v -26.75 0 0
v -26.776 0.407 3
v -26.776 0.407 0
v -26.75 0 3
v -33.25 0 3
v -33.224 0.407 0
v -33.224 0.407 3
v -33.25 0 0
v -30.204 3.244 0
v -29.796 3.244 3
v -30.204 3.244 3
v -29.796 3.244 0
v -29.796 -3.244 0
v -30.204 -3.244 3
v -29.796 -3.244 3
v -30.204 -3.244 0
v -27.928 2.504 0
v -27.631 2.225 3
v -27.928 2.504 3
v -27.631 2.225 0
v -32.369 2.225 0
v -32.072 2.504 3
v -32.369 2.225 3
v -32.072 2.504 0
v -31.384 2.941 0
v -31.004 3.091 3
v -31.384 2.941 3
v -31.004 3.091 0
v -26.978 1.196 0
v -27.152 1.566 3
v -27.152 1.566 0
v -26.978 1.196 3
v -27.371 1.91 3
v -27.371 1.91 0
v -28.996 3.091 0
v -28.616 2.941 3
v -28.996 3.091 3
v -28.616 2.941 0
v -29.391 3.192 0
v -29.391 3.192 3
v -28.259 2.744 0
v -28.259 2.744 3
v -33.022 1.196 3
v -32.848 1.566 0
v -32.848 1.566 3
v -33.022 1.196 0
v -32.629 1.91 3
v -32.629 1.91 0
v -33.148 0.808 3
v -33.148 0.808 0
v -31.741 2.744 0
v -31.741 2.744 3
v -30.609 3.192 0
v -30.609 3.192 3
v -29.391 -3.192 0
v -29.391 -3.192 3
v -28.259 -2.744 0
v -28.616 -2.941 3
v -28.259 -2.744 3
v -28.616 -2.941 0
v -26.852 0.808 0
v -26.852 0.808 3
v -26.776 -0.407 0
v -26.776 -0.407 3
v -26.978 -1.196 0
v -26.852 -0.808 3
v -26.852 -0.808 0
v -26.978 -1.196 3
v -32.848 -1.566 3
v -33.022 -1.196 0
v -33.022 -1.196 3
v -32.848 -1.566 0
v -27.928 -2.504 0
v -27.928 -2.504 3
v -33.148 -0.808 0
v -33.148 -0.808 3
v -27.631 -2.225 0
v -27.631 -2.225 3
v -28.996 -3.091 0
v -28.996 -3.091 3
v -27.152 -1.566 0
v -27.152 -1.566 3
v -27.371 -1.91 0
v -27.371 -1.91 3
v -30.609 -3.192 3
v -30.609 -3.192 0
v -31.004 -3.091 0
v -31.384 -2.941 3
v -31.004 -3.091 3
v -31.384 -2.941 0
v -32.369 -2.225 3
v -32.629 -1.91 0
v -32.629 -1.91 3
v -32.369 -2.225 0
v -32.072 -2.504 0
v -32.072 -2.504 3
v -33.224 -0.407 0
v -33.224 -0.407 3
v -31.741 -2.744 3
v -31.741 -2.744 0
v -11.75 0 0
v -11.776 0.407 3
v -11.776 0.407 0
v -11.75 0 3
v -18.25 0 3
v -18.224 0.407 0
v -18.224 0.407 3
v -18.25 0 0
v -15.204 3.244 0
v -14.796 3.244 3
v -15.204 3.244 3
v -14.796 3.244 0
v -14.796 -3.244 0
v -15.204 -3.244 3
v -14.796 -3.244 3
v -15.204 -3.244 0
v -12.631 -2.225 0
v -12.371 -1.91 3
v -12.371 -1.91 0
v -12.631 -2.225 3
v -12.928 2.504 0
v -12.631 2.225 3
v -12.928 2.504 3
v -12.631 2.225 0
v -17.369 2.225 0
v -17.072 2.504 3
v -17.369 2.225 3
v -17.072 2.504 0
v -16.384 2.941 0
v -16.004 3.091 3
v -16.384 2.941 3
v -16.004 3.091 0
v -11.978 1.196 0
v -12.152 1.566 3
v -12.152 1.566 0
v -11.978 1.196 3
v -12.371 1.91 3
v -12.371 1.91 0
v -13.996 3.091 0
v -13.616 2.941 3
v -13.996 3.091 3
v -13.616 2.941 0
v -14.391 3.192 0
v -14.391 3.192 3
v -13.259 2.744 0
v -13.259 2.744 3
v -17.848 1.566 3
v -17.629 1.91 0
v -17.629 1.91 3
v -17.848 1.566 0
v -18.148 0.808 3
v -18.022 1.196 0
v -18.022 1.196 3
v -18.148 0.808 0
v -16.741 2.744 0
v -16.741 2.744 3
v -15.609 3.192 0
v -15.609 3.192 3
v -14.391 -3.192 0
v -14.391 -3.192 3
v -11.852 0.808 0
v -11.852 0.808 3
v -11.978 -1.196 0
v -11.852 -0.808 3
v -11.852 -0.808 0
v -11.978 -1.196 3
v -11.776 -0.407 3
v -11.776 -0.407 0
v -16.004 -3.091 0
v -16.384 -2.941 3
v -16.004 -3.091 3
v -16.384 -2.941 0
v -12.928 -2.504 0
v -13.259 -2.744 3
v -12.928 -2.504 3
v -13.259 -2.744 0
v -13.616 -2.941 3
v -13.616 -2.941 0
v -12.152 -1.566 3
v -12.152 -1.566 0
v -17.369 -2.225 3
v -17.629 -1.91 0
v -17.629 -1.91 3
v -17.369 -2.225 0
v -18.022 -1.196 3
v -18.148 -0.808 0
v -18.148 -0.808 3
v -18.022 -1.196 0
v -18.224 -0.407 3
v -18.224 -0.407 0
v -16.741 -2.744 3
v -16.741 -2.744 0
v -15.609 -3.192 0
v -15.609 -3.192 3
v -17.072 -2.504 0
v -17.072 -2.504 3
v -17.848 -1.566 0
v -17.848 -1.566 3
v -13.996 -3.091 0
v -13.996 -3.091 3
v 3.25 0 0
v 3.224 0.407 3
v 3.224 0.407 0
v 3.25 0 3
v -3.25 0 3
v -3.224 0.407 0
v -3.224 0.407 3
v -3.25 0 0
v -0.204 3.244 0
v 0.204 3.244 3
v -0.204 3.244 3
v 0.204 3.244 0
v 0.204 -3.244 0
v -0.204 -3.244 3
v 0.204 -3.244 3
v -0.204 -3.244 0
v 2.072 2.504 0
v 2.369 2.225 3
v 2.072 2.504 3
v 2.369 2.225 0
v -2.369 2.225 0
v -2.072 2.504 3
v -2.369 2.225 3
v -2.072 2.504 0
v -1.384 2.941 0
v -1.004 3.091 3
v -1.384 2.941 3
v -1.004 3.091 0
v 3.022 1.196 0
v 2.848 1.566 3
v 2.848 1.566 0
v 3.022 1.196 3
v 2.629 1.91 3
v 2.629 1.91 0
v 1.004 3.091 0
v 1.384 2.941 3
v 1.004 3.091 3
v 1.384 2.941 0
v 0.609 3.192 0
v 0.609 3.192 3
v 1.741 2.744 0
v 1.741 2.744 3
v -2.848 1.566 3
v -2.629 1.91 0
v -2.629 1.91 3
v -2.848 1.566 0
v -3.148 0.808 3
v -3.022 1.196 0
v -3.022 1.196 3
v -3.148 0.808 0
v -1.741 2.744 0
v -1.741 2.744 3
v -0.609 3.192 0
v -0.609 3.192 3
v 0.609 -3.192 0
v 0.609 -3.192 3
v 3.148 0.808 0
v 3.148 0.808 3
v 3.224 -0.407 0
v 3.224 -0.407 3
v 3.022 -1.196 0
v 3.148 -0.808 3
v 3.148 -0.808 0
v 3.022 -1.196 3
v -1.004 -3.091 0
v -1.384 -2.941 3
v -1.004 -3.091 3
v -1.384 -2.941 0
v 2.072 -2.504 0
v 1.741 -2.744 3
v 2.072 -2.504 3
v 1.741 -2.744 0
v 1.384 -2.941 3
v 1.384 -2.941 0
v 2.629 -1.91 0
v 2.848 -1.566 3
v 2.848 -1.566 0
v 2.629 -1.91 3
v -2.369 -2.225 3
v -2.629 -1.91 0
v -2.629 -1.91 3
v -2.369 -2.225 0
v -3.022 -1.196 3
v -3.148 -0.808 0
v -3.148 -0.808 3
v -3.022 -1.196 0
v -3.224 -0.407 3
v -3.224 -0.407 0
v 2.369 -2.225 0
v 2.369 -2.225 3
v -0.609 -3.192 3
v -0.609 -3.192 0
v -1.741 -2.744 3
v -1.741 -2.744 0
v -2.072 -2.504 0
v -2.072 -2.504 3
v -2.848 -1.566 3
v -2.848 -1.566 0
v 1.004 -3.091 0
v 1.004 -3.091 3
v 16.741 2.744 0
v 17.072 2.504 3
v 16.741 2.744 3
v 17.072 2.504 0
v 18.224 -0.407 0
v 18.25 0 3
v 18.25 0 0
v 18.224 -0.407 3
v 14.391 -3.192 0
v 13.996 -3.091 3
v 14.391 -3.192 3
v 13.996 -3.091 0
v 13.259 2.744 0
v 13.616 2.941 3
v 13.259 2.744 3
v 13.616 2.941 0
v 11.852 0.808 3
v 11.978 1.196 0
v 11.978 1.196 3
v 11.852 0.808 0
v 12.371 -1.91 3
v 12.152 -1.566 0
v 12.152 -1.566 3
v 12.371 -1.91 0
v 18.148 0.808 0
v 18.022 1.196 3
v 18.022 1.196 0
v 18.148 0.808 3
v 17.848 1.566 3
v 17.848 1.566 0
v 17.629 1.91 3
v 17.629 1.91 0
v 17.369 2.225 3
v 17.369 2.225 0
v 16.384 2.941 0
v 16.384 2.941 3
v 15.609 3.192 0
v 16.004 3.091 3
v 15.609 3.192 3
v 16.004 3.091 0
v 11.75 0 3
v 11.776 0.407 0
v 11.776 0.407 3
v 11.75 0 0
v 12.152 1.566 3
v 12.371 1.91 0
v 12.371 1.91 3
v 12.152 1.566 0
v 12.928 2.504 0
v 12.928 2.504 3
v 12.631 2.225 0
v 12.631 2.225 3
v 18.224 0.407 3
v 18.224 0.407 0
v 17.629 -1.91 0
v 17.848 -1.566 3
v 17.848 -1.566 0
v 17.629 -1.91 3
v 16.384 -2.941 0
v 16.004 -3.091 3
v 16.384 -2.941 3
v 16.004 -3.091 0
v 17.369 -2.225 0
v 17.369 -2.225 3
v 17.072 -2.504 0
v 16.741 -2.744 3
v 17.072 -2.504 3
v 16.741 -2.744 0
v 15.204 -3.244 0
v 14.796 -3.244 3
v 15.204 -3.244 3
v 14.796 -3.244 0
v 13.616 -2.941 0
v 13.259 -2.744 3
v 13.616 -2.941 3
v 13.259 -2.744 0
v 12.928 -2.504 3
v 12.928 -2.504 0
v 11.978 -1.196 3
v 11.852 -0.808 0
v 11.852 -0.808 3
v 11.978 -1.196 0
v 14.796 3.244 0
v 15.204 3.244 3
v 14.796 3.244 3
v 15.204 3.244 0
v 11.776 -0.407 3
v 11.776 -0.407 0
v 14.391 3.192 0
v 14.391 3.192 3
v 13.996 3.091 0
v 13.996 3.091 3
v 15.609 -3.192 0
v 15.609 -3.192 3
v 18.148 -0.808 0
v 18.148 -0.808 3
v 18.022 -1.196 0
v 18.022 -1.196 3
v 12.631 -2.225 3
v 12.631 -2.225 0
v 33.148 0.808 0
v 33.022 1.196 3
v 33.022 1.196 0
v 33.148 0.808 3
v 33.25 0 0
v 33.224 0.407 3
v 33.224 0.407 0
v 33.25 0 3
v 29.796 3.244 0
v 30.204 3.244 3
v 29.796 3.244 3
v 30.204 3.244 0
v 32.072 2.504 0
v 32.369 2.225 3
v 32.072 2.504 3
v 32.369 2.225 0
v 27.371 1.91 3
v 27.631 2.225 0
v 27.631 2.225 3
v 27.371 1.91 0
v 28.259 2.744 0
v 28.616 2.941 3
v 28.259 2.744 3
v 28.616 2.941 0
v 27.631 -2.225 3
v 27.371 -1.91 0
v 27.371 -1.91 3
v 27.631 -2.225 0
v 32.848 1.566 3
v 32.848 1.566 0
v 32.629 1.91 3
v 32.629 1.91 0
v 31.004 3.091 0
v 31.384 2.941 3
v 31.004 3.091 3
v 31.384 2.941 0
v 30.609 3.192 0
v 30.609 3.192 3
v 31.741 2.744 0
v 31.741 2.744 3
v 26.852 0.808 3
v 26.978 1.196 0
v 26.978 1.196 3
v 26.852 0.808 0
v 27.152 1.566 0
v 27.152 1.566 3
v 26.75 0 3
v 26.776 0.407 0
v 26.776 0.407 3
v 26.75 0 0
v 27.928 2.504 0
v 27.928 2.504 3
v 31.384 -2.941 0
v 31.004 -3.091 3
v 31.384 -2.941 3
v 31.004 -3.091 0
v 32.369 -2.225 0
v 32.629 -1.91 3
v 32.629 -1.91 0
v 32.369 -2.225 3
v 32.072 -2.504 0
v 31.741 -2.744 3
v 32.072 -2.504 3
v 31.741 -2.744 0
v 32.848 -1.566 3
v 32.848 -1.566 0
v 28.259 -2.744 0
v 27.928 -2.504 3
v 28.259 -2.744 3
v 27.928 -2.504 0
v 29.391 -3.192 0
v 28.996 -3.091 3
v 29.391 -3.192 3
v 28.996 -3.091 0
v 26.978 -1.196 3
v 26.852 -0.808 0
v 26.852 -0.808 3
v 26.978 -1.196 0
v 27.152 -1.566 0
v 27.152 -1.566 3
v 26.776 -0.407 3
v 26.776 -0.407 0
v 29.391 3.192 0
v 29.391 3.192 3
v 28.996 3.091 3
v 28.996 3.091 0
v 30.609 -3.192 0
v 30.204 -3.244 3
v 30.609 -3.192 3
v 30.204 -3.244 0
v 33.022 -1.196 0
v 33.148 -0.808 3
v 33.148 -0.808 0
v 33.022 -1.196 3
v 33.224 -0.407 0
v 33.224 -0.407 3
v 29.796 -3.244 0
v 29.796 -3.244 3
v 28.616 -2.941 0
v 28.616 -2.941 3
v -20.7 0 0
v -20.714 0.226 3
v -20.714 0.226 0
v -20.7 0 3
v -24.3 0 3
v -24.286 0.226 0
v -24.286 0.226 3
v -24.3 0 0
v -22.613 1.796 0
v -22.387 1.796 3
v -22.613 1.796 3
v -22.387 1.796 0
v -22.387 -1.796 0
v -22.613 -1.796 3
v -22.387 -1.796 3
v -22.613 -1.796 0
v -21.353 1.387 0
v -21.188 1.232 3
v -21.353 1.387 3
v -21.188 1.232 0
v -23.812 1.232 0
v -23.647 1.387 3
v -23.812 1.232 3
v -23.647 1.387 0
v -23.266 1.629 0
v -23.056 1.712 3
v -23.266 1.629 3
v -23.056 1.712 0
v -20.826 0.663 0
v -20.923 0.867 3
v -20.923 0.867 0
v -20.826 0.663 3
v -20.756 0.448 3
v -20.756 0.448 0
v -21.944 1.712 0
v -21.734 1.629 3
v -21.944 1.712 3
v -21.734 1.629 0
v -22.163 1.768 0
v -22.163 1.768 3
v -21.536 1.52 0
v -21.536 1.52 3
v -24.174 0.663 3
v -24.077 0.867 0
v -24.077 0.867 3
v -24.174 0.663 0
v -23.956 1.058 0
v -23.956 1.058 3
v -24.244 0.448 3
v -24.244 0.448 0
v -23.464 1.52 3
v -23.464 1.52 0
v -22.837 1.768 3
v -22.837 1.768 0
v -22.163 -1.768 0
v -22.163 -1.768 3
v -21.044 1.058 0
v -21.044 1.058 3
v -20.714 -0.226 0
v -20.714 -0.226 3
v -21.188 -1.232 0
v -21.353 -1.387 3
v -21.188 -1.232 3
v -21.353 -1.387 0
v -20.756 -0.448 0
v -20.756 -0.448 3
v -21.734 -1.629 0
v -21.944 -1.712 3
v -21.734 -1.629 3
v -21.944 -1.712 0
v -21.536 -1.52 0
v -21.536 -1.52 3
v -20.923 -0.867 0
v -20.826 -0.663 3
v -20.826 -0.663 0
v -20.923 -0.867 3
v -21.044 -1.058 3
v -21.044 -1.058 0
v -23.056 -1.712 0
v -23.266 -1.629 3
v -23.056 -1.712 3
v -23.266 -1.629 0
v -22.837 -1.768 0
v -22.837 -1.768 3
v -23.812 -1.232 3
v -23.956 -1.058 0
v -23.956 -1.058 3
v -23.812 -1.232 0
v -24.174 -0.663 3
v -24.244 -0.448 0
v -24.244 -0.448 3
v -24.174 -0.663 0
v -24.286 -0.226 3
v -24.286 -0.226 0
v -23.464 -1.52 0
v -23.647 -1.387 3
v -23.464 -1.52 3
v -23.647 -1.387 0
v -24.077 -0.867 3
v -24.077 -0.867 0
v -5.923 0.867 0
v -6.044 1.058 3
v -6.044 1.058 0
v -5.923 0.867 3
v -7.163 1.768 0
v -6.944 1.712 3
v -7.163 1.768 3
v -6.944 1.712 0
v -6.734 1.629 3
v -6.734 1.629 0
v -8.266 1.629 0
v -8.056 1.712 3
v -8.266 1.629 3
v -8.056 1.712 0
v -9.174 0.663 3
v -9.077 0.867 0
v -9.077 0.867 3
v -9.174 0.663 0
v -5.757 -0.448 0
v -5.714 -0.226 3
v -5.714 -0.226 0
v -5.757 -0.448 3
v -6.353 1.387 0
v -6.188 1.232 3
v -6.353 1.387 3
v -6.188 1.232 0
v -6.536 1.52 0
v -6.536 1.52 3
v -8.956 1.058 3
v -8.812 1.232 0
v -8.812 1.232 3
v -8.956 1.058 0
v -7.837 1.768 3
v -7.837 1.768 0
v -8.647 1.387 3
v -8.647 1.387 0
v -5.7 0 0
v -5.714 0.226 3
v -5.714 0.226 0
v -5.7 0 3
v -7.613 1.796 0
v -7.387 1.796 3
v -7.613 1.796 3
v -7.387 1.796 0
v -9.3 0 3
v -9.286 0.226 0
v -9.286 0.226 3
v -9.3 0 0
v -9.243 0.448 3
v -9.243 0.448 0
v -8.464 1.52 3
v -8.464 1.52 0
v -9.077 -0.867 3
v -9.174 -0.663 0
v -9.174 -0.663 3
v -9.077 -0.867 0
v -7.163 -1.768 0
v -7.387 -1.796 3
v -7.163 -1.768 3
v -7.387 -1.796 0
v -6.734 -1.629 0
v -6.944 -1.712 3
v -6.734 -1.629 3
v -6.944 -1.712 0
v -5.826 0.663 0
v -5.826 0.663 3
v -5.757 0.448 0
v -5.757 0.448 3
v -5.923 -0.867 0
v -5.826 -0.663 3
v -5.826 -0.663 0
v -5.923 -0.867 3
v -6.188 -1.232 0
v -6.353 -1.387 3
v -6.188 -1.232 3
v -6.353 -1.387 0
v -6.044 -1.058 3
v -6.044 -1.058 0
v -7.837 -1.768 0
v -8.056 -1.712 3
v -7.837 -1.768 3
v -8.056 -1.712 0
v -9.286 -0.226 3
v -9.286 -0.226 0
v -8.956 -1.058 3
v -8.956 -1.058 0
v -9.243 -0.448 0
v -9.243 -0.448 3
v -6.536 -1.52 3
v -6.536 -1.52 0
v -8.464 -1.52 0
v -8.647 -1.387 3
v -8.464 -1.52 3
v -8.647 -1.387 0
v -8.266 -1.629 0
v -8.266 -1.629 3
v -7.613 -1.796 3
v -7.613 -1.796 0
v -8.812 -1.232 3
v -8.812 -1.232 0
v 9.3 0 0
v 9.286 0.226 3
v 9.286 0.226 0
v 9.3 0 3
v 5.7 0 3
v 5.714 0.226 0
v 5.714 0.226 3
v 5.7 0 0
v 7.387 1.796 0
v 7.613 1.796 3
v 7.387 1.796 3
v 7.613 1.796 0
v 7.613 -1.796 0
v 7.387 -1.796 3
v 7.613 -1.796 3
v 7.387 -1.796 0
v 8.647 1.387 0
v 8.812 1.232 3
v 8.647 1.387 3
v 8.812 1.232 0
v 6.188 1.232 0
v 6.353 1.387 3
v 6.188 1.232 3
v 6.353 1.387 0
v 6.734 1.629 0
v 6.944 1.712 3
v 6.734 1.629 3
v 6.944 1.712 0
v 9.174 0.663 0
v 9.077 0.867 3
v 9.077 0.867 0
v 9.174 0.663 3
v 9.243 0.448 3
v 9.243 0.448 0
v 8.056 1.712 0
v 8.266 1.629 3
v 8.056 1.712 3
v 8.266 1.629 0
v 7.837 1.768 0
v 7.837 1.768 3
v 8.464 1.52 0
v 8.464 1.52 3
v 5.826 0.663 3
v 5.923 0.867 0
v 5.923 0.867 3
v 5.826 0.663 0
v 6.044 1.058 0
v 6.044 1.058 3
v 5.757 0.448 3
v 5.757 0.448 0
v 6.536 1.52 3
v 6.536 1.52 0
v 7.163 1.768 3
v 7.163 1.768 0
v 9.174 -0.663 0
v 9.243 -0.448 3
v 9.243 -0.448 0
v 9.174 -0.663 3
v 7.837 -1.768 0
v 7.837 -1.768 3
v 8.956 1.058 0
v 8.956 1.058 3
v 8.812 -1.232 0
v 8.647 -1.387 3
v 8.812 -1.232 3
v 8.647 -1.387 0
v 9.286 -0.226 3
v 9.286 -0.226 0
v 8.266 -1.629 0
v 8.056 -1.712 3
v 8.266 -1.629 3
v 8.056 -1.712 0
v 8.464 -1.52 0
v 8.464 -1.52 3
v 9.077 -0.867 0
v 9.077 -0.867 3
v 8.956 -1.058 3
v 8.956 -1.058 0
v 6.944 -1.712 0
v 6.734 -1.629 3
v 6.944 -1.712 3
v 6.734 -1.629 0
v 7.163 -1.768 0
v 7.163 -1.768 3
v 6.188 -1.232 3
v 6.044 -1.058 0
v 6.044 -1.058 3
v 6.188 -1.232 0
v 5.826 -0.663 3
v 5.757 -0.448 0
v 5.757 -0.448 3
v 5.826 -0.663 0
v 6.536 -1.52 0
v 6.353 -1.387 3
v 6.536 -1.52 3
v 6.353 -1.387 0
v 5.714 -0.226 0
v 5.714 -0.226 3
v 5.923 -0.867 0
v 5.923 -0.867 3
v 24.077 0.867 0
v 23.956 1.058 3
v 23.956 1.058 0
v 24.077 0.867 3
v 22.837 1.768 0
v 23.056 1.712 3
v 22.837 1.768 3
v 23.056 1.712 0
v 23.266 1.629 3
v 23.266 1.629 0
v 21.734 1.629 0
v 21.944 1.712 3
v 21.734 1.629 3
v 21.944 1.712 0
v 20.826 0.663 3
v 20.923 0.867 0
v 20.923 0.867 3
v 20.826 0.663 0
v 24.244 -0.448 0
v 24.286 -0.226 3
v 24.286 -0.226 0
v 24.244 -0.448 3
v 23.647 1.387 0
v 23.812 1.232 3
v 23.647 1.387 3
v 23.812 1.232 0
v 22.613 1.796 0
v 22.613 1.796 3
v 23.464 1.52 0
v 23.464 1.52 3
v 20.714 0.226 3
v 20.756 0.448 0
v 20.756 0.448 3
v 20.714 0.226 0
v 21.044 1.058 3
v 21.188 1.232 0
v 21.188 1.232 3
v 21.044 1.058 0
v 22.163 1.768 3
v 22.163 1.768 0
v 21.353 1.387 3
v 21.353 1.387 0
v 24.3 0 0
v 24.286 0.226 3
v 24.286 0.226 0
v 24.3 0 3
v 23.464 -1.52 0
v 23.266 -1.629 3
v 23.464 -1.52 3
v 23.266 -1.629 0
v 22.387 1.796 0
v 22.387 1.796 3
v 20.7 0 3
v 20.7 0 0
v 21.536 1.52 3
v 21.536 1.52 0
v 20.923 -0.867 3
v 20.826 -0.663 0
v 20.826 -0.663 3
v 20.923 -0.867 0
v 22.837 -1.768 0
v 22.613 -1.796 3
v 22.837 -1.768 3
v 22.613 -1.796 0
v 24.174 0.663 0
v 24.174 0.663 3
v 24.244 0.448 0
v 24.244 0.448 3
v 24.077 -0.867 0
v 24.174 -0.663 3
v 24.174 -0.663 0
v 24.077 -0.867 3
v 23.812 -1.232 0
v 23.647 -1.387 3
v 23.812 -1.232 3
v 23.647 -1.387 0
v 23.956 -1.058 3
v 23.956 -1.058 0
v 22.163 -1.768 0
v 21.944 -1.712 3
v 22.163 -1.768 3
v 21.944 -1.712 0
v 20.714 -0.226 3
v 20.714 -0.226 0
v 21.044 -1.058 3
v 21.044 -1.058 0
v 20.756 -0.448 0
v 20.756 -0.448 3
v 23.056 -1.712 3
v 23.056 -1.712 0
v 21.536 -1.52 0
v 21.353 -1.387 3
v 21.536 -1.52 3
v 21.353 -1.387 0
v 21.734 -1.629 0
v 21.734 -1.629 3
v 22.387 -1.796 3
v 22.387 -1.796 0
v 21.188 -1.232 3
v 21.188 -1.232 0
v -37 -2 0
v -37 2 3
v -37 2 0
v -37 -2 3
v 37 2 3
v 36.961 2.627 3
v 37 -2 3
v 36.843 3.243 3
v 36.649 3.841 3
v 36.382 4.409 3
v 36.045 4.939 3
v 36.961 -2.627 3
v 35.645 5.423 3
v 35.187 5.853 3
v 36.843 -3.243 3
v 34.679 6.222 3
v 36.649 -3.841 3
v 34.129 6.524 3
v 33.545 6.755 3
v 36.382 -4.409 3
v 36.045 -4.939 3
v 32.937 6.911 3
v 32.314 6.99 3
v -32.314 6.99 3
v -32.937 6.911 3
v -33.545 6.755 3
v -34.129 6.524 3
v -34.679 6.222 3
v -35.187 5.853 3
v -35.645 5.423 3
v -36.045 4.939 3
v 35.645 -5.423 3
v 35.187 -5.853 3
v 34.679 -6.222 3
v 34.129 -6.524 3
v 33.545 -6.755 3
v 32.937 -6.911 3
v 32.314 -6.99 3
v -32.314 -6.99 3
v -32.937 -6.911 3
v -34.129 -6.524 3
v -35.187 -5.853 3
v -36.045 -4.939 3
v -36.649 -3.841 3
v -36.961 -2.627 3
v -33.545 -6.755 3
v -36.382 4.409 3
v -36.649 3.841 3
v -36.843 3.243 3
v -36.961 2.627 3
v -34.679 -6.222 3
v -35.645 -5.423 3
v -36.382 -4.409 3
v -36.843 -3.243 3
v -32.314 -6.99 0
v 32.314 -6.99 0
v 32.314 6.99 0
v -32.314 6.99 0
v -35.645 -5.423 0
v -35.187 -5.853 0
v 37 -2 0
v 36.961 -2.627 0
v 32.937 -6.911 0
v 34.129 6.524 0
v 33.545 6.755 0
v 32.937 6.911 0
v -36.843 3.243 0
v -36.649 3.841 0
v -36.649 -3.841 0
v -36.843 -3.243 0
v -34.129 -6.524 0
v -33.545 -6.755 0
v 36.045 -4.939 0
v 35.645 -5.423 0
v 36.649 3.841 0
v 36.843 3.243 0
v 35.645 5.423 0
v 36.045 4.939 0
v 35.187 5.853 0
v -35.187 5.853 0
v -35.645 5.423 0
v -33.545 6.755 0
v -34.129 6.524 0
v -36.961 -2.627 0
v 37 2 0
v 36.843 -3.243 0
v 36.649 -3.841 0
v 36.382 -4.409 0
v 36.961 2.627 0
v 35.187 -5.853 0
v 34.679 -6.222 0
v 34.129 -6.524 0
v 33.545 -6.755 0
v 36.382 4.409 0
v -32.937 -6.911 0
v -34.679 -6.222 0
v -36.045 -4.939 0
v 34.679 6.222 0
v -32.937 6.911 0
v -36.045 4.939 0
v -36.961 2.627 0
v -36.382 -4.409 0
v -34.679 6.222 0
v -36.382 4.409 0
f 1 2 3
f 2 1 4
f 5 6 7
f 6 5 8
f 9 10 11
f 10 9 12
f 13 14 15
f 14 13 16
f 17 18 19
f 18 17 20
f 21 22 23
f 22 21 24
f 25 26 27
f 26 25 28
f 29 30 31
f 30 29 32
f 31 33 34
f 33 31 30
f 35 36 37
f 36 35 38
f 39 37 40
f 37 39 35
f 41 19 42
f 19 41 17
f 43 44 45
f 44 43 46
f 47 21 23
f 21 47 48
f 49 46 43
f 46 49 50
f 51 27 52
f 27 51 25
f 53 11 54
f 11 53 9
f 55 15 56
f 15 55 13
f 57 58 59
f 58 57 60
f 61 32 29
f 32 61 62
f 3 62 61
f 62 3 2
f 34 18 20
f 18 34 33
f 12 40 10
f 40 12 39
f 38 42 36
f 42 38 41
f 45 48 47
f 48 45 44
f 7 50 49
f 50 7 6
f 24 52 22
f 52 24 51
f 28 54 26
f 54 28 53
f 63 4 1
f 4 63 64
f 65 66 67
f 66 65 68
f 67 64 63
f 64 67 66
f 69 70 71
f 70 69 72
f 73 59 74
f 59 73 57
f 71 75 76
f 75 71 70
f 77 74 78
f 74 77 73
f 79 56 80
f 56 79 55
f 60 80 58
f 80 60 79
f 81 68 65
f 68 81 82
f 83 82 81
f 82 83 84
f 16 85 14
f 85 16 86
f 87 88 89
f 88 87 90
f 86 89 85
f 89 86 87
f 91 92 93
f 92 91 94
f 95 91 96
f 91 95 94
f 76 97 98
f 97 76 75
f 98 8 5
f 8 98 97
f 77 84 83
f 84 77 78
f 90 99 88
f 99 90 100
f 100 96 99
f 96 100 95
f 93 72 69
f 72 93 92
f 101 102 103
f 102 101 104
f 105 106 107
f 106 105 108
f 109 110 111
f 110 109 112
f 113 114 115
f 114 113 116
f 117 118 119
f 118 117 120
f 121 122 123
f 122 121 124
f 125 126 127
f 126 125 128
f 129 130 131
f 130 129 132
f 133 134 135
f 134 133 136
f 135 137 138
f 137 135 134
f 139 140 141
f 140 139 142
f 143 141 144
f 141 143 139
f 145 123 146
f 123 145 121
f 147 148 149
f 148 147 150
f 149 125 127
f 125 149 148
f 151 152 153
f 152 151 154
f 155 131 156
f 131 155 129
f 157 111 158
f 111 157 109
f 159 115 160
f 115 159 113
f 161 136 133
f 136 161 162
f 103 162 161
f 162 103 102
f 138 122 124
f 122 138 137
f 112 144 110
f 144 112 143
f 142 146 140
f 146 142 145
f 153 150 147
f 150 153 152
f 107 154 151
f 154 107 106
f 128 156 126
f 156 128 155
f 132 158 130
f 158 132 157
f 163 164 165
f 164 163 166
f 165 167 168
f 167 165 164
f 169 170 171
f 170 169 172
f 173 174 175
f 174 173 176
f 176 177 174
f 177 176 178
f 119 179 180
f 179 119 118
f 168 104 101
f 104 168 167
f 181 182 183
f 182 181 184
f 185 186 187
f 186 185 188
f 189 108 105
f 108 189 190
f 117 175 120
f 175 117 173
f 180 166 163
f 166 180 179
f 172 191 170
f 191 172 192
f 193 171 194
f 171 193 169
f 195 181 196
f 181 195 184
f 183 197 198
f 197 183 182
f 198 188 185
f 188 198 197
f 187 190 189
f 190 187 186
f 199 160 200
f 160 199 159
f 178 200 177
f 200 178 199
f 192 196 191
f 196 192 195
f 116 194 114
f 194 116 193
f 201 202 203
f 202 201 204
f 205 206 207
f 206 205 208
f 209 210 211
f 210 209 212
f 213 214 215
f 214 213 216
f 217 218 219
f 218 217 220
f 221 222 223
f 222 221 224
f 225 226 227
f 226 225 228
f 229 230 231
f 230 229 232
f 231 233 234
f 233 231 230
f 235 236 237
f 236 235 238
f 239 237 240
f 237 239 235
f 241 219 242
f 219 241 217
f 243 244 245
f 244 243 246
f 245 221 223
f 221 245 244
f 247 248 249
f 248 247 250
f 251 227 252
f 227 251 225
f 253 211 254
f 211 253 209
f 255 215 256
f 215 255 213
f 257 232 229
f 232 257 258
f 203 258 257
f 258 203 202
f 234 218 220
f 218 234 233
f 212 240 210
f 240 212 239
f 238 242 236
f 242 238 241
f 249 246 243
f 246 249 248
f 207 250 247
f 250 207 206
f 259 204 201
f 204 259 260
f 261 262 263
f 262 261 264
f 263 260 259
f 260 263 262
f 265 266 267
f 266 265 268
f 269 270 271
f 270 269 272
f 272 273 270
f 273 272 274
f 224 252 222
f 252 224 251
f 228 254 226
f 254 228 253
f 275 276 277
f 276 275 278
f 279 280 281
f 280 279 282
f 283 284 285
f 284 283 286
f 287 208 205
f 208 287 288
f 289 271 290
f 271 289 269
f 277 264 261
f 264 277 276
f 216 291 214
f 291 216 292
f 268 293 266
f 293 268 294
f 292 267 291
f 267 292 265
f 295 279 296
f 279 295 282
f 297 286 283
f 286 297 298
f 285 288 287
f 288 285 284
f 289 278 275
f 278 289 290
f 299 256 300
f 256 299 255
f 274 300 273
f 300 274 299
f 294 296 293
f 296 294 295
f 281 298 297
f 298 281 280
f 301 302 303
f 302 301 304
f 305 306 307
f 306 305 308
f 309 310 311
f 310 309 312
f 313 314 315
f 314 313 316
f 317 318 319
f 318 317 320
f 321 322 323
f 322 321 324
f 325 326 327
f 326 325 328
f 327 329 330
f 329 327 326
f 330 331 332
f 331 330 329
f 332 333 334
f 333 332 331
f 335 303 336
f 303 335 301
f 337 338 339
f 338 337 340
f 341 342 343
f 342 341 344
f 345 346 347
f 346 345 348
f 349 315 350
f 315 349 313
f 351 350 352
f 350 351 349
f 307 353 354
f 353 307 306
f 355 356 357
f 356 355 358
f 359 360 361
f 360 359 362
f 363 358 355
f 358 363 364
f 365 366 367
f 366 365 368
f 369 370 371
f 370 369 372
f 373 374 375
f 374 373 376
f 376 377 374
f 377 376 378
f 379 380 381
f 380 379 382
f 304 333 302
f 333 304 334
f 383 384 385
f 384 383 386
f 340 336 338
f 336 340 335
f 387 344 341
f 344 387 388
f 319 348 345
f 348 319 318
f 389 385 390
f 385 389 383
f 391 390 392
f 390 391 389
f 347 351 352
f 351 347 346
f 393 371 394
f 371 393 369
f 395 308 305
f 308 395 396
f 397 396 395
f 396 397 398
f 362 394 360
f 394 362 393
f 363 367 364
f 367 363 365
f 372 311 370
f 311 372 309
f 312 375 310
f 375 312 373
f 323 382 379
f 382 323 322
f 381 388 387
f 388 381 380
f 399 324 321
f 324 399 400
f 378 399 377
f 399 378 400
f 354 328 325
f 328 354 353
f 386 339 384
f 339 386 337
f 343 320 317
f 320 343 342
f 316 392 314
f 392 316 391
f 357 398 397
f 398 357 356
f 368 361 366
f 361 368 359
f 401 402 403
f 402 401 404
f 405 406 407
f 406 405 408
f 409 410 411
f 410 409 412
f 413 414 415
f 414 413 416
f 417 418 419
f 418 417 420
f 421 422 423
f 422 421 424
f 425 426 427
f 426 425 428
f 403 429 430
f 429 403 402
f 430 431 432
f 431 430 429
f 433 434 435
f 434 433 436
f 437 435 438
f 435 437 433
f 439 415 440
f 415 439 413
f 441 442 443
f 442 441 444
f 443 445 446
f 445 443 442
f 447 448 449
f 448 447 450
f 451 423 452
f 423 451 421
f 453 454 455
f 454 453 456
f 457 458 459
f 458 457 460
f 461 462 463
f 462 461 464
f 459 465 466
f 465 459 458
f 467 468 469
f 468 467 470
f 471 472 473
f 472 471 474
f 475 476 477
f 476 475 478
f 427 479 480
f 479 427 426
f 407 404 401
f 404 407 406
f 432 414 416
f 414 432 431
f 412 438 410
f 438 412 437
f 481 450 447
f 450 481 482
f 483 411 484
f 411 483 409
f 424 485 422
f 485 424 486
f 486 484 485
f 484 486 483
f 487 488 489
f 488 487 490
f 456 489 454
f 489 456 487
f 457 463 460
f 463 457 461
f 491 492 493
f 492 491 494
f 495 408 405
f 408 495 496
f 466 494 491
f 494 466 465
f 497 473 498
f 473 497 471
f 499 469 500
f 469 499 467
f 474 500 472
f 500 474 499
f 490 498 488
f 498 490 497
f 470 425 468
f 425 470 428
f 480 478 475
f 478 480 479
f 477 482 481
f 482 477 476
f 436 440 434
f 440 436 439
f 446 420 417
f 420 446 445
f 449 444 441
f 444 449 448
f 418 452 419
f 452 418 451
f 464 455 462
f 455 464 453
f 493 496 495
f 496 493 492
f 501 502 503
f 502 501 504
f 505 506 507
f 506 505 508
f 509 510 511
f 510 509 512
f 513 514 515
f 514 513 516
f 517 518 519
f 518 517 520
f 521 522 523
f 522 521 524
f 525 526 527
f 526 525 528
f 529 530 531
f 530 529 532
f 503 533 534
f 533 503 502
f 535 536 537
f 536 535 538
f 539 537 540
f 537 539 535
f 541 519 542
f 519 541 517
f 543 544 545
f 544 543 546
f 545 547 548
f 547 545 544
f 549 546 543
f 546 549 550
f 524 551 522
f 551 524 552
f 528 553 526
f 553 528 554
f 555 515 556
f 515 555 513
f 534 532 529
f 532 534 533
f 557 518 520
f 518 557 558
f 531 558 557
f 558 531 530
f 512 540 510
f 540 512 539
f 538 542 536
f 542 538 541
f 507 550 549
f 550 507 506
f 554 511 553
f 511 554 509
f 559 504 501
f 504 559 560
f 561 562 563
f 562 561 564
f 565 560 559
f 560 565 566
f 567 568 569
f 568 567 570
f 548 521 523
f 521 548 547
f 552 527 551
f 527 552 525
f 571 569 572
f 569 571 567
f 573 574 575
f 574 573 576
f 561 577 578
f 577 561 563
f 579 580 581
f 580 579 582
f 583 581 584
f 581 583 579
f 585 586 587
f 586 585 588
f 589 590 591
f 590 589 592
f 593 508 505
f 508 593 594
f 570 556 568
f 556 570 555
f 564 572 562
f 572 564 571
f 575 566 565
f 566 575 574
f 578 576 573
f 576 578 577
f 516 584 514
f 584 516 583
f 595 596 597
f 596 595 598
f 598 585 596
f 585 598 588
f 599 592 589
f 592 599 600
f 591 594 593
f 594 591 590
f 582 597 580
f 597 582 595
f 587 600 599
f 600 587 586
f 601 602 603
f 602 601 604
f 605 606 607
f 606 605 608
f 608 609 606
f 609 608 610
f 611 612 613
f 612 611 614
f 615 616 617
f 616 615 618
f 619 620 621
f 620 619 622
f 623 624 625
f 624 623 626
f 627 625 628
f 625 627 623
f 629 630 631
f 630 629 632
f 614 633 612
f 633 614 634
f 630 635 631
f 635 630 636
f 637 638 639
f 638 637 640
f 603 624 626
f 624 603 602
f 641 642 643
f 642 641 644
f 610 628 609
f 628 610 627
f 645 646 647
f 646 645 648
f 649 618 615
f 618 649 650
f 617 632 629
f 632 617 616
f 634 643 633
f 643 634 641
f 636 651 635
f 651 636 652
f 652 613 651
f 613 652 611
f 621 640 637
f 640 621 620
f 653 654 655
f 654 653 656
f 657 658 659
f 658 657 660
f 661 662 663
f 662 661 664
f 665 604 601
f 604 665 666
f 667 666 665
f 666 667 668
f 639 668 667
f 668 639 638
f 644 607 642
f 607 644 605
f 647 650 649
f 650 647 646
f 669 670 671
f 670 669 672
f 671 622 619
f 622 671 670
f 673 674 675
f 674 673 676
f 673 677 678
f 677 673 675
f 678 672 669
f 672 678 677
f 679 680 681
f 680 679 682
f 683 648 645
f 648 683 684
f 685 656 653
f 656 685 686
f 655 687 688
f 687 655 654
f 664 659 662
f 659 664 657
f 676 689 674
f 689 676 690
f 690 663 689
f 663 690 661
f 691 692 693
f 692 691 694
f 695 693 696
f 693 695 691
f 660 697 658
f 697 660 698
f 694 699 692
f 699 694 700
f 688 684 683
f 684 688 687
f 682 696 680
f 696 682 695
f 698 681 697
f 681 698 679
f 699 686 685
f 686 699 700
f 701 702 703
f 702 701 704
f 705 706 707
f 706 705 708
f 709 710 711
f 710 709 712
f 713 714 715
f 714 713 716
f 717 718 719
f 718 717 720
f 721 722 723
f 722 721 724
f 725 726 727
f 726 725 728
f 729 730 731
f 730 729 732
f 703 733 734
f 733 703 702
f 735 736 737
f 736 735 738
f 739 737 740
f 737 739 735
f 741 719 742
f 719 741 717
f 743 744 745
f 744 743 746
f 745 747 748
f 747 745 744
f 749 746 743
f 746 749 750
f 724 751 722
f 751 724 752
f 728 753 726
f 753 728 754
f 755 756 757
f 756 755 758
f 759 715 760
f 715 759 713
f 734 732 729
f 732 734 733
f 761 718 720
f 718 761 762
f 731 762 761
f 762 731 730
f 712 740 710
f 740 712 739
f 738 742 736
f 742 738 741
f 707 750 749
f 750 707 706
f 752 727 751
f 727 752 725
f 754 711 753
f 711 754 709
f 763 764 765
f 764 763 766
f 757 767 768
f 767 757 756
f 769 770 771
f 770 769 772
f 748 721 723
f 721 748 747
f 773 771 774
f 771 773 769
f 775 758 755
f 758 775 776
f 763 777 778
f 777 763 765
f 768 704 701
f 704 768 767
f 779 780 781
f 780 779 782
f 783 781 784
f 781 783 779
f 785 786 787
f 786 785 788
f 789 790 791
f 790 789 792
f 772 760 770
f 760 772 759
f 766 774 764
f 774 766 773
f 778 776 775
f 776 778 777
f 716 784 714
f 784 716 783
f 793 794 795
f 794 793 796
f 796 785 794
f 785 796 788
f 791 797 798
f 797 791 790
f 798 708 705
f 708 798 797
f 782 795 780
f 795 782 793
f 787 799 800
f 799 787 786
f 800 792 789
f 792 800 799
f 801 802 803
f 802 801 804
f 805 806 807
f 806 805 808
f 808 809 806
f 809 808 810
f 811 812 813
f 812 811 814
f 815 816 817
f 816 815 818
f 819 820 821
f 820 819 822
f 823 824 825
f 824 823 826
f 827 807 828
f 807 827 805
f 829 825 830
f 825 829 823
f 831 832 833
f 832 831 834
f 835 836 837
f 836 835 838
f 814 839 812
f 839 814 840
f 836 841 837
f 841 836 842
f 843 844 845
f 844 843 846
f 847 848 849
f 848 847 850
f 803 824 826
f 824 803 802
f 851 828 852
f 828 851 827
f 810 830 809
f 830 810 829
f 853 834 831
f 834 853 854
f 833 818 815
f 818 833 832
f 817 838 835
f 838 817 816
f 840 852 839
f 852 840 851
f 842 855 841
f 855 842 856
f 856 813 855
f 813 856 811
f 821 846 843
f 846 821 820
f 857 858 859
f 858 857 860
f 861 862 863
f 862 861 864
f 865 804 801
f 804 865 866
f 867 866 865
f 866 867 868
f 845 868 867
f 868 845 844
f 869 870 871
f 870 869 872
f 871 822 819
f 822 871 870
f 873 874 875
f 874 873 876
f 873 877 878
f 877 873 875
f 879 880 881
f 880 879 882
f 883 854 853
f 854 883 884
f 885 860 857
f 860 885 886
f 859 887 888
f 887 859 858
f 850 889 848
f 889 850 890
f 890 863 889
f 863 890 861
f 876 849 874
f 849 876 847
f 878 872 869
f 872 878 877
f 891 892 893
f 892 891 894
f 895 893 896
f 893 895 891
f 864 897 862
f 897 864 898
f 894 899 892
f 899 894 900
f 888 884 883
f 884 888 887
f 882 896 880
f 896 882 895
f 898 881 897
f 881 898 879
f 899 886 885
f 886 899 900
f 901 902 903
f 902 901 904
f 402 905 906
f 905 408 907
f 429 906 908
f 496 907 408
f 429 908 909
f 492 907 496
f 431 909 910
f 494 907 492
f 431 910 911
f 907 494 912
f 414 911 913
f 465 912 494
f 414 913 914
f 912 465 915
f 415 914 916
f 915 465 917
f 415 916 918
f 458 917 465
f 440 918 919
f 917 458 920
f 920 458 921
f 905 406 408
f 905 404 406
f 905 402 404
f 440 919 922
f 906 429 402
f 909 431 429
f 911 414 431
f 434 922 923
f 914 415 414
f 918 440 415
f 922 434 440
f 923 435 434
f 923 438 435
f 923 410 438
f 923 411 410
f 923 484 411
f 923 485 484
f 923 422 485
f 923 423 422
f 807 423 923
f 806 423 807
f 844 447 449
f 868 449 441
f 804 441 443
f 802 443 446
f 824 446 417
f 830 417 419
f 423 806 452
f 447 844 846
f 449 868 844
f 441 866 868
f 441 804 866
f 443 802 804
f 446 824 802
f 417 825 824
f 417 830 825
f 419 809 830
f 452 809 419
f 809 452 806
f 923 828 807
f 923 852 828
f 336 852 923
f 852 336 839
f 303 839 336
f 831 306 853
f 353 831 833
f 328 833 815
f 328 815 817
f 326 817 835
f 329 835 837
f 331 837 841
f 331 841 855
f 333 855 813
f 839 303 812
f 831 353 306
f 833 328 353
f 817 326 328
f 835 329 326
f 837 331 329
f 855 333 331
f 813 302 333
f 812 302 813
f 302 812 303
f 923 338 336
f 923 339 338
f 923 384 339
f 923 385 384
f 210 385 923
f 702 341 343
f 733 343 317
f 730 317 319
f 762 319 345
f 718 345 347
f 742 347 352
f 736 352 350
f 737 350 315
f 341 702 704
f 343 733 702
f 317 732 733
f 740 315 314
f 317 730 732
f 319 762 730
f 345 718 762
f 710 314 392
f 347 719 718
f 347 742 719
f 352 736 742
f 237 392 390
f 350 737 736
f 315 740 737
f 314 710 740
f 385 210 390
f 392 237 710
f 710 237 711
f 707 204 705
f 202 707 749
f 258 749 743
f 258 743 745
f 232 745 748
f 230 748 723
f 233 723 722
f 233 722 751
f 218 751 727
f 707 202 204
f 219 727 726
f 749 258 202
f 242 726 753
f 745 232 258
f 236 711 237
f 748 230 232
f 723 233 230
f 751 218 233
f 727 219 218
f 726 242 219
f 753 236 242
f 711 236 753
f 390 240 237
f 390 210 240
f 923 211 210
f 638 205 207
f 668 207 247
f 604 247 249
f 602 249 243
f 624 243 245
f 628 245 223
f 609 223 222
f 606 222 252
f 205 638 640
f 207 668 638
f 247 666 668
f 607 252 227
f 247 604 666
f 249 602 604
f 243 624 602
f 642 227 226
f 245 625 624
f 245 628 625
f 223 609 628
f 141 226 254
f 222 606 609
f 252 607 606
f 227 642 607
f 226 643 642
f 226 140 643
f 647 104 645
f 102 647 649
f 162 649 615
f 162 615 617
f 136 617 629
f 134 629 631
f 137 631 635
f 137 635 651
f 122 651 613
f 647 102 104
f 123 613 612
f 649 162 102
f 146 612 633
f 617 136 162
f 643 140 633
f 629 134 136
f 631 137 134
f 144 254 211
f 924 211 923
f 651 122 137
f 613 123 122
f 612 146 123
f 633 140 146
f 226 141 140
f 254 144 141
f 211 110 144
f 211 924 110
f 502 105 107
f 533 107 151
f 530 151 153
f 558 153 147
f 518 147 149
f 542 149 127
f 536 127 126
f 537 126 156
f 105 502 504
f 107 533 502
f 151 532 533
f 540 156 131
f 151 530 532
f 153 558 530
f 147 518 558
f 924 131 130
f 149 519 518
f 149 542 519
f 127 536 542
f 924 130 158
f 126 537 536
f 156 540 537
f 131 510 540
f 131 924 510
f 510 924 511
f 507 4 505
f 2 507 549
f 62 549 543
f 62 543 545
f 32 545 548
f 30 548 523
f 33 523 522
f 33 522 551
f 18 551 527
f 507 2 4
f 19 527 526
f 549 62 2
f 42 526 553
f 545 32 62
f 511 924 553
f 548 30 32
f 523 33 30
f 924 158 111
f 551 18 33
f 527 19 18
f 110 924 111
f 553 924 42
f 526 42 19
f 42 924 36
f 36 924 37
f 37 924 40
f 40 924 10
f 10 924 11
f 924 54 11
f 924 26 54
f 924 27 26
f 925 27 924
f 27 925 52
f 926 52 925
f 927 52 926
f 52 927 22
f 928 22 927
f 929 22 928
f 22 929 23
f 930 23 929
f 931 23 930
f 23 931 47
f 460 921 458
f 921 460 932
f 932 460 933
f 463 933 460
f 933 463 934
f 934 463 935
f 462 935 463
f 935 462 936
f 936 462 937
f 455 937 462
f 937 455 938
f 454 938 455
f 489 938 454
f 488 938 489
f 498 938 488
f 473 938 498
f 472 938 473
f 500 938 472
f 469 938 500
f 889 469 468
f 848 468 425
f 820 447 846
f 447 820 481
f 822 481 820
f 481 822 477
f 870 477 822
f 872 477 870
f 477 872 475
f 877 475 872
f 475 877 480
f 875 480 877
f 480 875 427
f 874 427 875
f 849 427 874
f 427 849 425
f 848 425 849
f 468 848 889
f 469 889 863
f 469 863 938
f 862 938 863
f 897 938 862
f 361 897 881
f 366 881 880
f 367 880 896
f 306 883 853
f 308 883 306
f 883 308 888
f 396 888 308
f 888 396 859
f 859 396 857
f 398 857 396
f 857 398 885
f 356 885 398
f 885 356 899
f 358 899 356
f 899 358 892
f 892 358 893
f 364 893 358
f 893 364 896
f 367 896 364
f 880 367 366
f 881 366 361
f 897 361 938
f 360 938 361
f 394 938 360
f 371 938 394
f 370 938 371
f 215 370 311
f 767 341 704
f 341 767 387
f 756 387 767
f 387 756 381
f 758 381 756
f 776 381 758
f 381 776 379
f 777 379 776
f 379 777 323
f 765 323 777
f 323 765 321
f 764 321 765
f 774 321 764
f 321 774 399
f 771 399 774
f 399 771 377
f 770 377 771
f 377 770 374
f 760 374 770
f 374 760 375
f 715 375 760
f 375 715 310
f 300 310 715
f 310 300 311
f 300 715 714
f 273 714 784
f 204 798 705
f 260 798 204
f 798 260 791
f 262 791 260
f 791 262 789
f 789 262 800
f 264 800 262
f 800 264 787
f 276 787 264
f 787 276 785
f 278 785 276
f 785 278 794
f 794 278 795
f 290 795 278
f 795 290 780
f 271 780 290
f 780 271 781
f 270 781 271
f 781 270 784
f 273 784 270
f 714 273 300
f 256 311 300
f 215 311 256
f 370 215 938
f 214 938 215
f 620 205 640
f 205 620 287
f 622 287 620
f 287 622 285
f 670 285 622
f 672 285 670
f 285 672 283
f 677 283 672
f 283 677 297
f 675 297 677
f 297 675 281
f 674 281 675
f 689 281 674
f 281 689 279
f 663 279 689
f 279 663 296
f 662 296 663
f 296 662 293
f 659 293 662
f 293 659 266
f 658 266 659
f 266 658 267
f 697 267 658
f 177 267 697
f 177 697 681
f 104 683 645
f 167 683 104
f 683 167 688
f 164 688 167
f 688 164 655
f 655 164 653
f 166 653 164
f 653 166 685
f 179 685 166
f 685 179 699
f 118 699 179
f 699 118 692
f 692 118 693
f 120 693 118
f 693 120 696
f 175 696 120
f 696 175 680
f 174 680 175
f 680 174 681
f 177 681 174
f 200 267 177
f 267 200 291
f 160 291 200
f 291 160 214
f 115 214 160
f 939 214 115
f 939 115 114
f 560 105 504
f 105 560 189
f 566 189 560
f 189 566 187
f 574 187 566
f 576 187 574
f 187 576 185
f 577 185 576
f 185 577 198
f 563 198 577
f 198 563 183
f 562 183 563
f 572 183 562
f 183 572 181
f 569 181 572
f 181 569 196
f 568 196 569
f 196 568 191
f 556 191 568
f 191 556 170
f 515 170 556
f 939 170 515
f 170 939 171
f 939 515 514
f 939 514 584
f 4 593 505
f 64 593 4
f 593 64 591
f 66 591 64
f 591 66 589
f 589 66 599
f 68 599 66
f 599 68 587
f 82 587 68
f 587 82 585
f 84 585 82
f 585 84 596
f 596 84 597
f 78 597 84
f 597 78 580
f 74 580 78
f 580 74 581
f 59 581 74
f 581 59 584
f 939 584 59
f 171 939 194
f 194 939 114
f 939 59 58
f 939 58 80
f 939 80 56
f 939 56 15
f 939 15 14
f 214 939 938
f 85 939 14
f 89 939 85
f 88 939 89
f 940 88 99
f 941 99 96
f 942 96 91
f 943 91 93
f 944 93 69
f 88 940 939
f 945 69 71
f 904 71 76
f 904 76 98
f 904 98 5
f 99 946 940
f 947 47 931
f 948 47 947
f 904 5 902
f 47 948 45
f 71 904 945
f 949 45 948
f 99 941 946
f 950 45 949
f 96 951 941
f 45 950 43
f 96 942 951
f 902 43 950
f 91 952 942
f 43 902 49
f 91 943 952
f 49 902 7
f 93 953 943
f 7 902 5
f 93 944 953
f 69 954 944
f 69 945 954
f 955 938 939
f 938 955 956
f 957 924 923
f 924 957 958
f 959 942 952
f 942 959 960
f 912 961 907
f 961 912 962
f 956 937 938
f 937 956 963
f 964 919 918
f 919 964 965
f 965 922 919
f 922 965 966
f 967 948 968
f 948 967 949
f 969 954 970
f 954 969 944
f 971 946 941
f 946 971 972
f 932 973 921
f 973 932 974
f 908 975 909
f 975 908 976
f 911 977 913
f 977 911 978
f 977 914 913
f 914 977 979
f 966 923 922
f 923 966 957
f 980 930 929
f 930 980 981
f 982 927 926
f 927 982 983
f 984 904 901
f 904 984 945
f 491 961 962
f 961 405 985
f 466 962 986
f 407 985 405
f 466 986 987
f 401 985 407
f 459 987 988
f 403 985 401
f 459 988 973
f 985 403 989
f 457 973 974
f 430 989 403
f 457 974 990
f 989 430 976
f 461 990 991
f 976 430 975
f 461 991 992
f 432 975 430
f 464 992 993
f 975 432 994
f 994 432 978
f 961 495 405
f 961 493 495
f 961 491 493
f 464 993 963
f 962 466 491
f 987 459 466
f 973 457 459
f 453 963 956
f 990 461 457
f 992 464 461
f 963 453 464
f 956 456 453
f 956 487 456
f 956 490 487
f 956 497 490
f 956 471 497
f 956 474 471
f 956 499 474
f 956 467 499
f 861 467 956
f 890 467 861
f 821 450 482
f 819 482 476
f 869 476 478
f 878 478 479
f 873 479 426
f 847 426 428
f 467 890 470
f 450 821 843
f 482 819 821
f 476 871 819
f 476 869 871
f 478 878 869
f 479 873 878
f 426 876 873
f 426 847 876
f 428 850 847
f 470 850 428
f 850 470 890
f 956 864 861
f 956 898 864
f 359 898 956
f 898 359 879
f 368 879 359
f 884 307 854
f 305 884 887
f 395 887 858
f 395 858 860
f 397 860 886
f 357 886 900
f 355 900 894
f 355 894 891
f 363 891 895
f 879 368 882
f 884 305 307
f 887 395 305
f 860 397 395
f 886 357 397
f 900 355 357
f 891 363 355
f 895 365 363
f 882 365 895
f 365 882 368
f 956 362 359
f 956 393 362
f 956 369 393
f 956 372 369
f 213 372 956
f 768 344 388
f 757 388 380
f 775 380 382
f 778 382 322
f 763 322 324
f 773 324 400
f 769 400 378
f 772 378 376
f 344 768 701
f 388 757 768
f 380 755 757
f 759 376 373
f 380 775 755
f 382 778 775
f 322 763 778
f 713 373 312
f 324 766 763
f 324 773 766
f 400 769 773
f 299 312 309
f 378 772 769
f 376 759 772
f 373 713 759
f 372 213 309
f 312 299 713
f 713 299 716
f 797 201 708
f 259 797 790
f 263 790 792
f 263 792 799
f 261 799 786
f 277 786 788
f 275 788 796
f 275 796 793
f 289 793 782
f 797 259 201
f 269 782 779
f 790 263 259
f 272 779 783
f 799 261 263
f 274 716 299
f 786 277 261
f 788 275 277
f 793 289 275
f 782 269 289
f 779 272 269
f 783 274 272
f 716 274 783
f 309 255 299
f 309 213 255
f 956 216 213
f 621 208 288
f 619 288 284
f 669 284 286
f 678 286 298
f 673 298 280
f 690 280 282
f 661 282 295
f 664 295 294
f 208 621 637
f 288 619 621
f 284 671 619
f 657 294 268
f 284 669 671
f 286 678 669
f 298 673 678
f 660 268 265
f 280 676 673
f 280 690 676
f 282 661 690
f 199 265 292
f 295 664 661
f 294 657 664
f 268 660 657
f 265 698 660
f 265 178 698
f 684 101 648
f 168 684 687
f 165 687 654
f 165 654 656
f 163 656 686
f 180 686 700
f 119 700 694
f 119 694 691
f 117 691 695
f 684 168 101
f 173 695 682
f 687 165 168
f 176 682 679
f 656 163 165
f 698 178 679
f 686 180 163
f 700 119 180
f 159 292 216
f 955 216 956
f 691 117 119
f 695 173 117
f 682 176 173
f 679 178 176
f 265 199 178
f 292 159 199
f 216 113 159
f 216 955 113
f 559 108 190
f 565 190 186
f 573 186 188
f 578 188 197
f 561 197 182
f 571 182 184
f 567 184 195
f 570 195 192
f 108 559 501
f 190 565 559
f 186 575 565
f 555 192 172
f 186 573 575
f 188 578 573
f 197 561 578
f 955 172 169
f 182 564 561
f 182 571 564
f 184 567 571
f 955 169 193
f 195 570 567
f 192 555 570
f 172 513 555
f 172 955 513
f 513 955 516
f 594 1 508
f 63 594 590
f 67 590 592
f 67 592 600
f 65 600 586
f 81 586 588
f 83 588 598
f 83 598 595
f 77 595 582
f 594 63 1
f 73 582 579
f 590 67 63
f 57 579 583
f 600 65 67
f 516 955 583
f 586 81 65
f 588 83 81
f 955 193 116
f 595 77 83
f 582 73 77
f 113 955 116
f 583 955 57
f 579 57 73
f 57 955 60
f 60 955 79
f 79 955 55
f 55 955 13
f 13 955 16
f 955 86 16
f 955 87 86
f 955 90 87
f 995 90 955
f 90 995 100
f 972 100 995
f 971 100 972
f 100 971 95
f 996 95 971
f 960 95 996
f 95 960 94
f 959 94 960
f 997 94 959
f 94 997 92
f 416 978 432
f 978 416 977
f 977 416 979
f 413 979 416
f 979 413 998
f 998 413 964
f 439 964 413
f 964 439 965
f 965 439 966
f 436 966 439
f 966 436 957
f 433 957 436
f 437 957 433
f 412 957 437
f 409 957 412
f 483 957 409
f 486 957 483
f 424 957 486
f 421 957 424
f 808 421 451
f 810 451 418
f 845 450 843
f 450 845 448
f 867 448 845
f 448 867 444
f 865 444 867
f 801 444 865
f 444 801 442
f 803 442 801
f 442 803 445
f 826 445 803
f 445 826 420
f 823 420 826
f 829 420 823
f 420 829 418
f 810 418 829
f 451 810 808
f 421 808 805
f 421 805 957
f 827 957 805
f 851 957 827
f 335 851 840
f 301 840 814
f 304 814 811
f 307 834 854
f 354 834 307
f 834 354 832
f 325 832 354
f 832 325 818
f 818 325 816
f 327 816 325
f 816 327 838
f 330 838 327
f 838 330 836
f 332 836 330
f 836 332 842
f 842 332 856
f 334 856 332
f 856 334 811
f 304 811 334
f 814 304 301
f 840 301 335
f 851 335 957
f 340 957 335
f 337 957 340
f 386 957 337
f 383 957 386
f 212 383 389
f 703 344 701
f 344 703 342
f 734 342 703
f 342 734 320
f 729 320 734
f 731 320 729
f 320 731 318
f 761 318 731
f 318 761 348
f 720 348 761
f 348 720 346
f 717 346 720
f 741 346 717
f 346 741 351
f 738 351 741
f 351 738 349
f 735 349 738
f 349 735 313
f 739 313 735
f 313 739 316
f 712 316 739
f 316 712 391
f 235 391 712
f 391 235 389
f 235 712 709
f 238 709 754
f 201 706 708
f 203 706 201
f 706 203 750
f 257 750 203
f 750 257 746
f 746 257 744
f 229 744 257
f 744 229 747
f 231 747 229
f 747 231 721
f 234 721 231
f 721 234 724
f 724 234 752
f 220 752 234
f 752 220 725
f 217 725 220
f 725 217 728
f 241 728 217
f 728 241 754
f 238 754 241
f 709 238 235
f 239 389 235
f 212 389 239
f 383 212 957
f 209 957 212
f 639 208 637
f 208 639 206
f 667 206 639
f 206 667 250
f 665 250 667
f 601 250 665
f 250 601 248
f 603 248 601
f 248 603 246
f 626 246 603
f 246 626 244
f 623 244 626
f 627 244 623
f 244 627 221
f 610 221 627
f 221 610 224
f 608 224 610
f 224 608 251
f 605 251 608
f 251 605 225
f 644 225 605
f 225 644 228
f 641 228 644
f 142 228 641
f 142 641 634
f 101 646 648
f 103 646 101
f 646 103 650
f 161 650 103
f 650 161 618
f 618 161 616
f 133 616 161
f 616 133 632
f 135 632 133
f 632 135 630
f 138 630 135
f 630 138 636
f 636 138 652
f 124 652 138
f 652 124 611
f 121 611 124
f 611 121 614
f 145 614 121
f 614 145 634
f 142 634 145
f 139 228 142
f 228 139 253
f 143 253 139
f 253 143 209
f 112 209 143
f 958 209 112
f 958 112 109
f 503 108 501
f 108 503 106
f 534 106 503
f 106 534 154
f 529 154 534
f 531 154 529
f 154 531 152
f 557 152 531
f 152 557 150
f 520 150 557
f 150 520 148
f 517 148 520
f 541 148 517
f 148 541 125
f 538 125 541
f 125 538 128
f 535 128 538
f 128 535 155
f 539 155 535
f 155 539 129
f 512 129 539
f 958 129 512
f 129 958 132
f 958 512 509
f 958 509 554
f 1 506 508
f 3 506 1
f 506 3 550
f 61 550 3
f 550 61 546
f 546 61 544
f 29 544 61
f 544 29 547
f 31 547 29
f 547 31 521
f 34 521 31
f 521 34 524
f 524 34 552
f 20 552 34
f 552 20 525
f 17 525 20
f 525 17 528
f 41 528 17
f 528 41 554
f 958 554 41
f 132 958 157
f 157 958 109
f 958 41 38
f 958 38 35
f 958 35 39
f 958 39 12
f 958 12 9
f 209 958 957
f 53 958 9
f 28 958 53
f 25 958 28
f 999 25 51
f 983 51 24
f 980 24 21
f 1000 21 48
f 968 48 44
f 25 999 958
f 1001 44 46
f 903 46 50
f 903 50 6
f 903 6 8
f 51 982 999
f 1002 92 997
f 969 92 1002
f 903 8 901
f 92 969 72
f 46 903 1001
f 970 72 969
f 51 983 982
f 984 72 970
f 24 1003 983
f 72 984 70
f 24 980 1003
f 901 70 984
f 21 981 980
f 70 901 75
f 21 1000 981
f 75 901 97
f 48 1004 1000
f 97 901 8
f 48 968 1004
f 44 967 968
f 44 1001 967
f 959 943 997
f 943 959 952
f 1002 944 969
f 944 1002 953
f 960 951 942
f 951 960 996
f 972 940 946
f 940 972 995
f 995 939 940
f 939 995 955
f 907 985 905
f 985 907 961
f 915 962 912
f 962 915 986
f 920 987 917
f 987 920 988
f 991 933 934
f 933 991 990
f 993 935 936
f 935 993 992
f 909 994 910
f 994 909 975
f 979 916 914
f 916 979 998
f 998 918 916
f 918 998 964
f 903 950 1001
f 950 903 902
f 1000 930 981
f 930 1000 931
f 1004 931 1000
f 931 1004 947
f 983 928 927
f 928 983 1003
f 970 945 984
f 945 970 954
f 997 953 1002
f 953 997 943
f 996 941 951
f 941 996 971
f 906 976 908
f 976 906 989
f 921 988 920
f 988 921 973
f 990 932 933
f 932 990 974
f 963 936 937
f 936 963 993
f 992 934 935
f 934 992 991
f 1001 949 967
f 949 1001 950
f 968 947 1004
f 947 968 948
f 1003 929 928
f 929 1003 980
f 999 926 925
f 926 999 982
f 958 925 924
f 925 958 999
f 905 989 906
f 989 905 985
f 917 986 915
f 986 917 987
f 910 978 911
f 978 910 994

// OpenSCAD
$fn = 50;


difference() {
	union() {
		hull() {
			translate(v = [-32.0000000000, 2.0000000000, 0]) {
				cylinder(h = 3, r = 5);
			}
			translate(v = [32.0000000000, 2.0000000000, 0]) {
				cylinder(h = 3, r = 5);
			}
			translate(v = [-32.0000000000, -2.0000000000, 0]) {
				cylinder(h = 3, r = 5);
			}
			translate(v = [32.0000000000, -2.0000000000, 0]) {
				cylinder(h = 3, r = 5);
			}
		}
	}
	union() {
		translate(v = [-30.0000000000, 0.0000000000, 0]) {
			translate(v = [0, 0, -100]) {
				cylinder(h = 200, r = 3.2500000000);
			}
		}
		translate(v = [-15.0000000000, 0.0000000000, 0]) {
			translate(v = [0, 0, -100]) {
				cylinder(h = 200, r = 3.2500000000);
			}
		}
		translate(v = [0, 0, -100]) {
			cylinder(h = 200, r = 3.2500000000);
		}
		translate(v = [15.0000000000, 0.0000000000, 0]) {
			translate(v = [0, 0, -100]) {
				cylinder(h = 200, r = 3.2500000000);
			}
		}
		translate(v = [30.0000000000, 0.0000000000, 0]) {
			translate(v = [0, 0, -100]) {
				cylinder(h = 200, r = 3.2500000000);
			}
		}
		translate(v = [-30.0000000000, 0.0000000000, 0]) {
			translate(v = [0, 0, -100]) {
				cylinder(h = 200, r = 1.8000000000);
			}
		}
		translate(v = [-22.5000000000, 0.0000000000, 0]) {
			translate(v = [0, 0, -100]) {
				cylinder(h = 200, r = 1.8000000000);
			}
		}
		translate(v = [-15.0000000000, 0.0000000000, 0]) {
			translate(v = [0, 0, -100]) {
				cylinder(h = 200, r = 1.8000000000);
			}
		}
		translate(v = [-7.5000000000, 0.0000000000, 0]) {
			translate(v = [0, 0, -100]) {
				cylinder(h = 200, r = 1.8000000000);
			}
		}
		translate(v = [0, 0, -100]) {
			cylinder(h = 200, r = 1.8000000000);
		}
		translate(v = [7.5000000000, 0.0000000000, 0]) {
			translate(v = [0, 0, -100]) {
				cylinder(h = 200, r = 1.8000000000);
			}
		}
		translate(v = [15.0000000000, 0.0000000000, 0]) {
			translate(v = [0, 0, -100]) {
				cylinder(h = 200, r = 1.8000000000);
			}
		}
		translate(v = [22.5000000000, 0.0000000000, 0]) {
			translate(v = [0, 0, -100]) {
				cylinder(h = 200, r = 1.8000000000);
			}
		}
		translate(v = [30.0000000000, 0.0000000000, 0]) {
			translate(v = [0, 0, -100]) {
				cylinder(h = 200, r = 1.8000000000);
			}
		}
	}
}
